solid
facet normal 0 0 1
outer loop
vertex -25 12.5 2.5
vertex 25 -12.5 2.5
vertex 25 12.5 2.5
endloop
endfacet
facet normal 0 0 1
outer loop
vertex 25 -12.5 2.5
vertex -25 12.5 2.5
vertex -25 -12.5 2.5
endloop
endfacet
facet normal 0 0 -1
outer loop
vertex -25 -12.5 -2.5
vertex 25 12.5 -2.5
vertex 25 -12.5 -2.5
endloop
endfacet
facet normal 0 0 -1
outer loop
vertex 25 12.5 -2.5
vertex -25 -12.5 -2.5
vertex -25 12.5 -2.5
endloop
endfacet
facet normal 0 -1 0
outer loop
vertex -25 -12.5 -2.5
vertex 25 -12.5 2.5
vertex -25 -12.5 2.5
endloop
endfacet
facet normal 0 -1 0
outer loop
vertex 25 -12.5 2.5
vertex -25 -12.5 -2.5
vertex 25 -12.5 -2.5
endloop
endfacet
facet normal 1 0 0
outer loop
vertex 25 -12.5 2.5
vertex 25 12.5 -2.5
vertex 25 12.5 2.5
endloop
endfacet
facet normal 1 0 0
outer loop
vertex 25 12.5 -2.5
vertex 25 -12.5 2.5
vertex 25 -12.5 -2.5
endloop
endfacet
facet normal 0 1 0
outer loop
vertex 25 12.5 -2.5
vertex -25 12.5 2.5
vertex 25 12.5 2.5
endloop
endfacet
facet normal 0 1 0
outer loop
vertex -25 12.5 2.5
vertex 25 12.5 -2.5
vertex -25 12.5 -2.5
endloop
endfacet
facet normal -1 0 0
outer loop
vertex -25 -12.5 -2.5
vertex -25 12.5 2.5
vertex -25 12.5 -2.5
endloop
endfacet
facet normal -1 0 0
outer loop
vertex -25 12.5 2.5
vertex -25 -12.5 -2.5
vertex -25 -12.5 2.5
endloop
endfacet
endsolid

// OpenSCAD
// Define dimensions for the rectangular block
block_length = 50;  // Length of the block
block_width = 25;   // Width of the block
block_thickness = 5; // Thickness of the block

// Generate the rectangular block
module rectangular_block() {
    cube([block_length, block_width, block_thickness], center = true);
}

// Assemble the model
rectangular_block();
